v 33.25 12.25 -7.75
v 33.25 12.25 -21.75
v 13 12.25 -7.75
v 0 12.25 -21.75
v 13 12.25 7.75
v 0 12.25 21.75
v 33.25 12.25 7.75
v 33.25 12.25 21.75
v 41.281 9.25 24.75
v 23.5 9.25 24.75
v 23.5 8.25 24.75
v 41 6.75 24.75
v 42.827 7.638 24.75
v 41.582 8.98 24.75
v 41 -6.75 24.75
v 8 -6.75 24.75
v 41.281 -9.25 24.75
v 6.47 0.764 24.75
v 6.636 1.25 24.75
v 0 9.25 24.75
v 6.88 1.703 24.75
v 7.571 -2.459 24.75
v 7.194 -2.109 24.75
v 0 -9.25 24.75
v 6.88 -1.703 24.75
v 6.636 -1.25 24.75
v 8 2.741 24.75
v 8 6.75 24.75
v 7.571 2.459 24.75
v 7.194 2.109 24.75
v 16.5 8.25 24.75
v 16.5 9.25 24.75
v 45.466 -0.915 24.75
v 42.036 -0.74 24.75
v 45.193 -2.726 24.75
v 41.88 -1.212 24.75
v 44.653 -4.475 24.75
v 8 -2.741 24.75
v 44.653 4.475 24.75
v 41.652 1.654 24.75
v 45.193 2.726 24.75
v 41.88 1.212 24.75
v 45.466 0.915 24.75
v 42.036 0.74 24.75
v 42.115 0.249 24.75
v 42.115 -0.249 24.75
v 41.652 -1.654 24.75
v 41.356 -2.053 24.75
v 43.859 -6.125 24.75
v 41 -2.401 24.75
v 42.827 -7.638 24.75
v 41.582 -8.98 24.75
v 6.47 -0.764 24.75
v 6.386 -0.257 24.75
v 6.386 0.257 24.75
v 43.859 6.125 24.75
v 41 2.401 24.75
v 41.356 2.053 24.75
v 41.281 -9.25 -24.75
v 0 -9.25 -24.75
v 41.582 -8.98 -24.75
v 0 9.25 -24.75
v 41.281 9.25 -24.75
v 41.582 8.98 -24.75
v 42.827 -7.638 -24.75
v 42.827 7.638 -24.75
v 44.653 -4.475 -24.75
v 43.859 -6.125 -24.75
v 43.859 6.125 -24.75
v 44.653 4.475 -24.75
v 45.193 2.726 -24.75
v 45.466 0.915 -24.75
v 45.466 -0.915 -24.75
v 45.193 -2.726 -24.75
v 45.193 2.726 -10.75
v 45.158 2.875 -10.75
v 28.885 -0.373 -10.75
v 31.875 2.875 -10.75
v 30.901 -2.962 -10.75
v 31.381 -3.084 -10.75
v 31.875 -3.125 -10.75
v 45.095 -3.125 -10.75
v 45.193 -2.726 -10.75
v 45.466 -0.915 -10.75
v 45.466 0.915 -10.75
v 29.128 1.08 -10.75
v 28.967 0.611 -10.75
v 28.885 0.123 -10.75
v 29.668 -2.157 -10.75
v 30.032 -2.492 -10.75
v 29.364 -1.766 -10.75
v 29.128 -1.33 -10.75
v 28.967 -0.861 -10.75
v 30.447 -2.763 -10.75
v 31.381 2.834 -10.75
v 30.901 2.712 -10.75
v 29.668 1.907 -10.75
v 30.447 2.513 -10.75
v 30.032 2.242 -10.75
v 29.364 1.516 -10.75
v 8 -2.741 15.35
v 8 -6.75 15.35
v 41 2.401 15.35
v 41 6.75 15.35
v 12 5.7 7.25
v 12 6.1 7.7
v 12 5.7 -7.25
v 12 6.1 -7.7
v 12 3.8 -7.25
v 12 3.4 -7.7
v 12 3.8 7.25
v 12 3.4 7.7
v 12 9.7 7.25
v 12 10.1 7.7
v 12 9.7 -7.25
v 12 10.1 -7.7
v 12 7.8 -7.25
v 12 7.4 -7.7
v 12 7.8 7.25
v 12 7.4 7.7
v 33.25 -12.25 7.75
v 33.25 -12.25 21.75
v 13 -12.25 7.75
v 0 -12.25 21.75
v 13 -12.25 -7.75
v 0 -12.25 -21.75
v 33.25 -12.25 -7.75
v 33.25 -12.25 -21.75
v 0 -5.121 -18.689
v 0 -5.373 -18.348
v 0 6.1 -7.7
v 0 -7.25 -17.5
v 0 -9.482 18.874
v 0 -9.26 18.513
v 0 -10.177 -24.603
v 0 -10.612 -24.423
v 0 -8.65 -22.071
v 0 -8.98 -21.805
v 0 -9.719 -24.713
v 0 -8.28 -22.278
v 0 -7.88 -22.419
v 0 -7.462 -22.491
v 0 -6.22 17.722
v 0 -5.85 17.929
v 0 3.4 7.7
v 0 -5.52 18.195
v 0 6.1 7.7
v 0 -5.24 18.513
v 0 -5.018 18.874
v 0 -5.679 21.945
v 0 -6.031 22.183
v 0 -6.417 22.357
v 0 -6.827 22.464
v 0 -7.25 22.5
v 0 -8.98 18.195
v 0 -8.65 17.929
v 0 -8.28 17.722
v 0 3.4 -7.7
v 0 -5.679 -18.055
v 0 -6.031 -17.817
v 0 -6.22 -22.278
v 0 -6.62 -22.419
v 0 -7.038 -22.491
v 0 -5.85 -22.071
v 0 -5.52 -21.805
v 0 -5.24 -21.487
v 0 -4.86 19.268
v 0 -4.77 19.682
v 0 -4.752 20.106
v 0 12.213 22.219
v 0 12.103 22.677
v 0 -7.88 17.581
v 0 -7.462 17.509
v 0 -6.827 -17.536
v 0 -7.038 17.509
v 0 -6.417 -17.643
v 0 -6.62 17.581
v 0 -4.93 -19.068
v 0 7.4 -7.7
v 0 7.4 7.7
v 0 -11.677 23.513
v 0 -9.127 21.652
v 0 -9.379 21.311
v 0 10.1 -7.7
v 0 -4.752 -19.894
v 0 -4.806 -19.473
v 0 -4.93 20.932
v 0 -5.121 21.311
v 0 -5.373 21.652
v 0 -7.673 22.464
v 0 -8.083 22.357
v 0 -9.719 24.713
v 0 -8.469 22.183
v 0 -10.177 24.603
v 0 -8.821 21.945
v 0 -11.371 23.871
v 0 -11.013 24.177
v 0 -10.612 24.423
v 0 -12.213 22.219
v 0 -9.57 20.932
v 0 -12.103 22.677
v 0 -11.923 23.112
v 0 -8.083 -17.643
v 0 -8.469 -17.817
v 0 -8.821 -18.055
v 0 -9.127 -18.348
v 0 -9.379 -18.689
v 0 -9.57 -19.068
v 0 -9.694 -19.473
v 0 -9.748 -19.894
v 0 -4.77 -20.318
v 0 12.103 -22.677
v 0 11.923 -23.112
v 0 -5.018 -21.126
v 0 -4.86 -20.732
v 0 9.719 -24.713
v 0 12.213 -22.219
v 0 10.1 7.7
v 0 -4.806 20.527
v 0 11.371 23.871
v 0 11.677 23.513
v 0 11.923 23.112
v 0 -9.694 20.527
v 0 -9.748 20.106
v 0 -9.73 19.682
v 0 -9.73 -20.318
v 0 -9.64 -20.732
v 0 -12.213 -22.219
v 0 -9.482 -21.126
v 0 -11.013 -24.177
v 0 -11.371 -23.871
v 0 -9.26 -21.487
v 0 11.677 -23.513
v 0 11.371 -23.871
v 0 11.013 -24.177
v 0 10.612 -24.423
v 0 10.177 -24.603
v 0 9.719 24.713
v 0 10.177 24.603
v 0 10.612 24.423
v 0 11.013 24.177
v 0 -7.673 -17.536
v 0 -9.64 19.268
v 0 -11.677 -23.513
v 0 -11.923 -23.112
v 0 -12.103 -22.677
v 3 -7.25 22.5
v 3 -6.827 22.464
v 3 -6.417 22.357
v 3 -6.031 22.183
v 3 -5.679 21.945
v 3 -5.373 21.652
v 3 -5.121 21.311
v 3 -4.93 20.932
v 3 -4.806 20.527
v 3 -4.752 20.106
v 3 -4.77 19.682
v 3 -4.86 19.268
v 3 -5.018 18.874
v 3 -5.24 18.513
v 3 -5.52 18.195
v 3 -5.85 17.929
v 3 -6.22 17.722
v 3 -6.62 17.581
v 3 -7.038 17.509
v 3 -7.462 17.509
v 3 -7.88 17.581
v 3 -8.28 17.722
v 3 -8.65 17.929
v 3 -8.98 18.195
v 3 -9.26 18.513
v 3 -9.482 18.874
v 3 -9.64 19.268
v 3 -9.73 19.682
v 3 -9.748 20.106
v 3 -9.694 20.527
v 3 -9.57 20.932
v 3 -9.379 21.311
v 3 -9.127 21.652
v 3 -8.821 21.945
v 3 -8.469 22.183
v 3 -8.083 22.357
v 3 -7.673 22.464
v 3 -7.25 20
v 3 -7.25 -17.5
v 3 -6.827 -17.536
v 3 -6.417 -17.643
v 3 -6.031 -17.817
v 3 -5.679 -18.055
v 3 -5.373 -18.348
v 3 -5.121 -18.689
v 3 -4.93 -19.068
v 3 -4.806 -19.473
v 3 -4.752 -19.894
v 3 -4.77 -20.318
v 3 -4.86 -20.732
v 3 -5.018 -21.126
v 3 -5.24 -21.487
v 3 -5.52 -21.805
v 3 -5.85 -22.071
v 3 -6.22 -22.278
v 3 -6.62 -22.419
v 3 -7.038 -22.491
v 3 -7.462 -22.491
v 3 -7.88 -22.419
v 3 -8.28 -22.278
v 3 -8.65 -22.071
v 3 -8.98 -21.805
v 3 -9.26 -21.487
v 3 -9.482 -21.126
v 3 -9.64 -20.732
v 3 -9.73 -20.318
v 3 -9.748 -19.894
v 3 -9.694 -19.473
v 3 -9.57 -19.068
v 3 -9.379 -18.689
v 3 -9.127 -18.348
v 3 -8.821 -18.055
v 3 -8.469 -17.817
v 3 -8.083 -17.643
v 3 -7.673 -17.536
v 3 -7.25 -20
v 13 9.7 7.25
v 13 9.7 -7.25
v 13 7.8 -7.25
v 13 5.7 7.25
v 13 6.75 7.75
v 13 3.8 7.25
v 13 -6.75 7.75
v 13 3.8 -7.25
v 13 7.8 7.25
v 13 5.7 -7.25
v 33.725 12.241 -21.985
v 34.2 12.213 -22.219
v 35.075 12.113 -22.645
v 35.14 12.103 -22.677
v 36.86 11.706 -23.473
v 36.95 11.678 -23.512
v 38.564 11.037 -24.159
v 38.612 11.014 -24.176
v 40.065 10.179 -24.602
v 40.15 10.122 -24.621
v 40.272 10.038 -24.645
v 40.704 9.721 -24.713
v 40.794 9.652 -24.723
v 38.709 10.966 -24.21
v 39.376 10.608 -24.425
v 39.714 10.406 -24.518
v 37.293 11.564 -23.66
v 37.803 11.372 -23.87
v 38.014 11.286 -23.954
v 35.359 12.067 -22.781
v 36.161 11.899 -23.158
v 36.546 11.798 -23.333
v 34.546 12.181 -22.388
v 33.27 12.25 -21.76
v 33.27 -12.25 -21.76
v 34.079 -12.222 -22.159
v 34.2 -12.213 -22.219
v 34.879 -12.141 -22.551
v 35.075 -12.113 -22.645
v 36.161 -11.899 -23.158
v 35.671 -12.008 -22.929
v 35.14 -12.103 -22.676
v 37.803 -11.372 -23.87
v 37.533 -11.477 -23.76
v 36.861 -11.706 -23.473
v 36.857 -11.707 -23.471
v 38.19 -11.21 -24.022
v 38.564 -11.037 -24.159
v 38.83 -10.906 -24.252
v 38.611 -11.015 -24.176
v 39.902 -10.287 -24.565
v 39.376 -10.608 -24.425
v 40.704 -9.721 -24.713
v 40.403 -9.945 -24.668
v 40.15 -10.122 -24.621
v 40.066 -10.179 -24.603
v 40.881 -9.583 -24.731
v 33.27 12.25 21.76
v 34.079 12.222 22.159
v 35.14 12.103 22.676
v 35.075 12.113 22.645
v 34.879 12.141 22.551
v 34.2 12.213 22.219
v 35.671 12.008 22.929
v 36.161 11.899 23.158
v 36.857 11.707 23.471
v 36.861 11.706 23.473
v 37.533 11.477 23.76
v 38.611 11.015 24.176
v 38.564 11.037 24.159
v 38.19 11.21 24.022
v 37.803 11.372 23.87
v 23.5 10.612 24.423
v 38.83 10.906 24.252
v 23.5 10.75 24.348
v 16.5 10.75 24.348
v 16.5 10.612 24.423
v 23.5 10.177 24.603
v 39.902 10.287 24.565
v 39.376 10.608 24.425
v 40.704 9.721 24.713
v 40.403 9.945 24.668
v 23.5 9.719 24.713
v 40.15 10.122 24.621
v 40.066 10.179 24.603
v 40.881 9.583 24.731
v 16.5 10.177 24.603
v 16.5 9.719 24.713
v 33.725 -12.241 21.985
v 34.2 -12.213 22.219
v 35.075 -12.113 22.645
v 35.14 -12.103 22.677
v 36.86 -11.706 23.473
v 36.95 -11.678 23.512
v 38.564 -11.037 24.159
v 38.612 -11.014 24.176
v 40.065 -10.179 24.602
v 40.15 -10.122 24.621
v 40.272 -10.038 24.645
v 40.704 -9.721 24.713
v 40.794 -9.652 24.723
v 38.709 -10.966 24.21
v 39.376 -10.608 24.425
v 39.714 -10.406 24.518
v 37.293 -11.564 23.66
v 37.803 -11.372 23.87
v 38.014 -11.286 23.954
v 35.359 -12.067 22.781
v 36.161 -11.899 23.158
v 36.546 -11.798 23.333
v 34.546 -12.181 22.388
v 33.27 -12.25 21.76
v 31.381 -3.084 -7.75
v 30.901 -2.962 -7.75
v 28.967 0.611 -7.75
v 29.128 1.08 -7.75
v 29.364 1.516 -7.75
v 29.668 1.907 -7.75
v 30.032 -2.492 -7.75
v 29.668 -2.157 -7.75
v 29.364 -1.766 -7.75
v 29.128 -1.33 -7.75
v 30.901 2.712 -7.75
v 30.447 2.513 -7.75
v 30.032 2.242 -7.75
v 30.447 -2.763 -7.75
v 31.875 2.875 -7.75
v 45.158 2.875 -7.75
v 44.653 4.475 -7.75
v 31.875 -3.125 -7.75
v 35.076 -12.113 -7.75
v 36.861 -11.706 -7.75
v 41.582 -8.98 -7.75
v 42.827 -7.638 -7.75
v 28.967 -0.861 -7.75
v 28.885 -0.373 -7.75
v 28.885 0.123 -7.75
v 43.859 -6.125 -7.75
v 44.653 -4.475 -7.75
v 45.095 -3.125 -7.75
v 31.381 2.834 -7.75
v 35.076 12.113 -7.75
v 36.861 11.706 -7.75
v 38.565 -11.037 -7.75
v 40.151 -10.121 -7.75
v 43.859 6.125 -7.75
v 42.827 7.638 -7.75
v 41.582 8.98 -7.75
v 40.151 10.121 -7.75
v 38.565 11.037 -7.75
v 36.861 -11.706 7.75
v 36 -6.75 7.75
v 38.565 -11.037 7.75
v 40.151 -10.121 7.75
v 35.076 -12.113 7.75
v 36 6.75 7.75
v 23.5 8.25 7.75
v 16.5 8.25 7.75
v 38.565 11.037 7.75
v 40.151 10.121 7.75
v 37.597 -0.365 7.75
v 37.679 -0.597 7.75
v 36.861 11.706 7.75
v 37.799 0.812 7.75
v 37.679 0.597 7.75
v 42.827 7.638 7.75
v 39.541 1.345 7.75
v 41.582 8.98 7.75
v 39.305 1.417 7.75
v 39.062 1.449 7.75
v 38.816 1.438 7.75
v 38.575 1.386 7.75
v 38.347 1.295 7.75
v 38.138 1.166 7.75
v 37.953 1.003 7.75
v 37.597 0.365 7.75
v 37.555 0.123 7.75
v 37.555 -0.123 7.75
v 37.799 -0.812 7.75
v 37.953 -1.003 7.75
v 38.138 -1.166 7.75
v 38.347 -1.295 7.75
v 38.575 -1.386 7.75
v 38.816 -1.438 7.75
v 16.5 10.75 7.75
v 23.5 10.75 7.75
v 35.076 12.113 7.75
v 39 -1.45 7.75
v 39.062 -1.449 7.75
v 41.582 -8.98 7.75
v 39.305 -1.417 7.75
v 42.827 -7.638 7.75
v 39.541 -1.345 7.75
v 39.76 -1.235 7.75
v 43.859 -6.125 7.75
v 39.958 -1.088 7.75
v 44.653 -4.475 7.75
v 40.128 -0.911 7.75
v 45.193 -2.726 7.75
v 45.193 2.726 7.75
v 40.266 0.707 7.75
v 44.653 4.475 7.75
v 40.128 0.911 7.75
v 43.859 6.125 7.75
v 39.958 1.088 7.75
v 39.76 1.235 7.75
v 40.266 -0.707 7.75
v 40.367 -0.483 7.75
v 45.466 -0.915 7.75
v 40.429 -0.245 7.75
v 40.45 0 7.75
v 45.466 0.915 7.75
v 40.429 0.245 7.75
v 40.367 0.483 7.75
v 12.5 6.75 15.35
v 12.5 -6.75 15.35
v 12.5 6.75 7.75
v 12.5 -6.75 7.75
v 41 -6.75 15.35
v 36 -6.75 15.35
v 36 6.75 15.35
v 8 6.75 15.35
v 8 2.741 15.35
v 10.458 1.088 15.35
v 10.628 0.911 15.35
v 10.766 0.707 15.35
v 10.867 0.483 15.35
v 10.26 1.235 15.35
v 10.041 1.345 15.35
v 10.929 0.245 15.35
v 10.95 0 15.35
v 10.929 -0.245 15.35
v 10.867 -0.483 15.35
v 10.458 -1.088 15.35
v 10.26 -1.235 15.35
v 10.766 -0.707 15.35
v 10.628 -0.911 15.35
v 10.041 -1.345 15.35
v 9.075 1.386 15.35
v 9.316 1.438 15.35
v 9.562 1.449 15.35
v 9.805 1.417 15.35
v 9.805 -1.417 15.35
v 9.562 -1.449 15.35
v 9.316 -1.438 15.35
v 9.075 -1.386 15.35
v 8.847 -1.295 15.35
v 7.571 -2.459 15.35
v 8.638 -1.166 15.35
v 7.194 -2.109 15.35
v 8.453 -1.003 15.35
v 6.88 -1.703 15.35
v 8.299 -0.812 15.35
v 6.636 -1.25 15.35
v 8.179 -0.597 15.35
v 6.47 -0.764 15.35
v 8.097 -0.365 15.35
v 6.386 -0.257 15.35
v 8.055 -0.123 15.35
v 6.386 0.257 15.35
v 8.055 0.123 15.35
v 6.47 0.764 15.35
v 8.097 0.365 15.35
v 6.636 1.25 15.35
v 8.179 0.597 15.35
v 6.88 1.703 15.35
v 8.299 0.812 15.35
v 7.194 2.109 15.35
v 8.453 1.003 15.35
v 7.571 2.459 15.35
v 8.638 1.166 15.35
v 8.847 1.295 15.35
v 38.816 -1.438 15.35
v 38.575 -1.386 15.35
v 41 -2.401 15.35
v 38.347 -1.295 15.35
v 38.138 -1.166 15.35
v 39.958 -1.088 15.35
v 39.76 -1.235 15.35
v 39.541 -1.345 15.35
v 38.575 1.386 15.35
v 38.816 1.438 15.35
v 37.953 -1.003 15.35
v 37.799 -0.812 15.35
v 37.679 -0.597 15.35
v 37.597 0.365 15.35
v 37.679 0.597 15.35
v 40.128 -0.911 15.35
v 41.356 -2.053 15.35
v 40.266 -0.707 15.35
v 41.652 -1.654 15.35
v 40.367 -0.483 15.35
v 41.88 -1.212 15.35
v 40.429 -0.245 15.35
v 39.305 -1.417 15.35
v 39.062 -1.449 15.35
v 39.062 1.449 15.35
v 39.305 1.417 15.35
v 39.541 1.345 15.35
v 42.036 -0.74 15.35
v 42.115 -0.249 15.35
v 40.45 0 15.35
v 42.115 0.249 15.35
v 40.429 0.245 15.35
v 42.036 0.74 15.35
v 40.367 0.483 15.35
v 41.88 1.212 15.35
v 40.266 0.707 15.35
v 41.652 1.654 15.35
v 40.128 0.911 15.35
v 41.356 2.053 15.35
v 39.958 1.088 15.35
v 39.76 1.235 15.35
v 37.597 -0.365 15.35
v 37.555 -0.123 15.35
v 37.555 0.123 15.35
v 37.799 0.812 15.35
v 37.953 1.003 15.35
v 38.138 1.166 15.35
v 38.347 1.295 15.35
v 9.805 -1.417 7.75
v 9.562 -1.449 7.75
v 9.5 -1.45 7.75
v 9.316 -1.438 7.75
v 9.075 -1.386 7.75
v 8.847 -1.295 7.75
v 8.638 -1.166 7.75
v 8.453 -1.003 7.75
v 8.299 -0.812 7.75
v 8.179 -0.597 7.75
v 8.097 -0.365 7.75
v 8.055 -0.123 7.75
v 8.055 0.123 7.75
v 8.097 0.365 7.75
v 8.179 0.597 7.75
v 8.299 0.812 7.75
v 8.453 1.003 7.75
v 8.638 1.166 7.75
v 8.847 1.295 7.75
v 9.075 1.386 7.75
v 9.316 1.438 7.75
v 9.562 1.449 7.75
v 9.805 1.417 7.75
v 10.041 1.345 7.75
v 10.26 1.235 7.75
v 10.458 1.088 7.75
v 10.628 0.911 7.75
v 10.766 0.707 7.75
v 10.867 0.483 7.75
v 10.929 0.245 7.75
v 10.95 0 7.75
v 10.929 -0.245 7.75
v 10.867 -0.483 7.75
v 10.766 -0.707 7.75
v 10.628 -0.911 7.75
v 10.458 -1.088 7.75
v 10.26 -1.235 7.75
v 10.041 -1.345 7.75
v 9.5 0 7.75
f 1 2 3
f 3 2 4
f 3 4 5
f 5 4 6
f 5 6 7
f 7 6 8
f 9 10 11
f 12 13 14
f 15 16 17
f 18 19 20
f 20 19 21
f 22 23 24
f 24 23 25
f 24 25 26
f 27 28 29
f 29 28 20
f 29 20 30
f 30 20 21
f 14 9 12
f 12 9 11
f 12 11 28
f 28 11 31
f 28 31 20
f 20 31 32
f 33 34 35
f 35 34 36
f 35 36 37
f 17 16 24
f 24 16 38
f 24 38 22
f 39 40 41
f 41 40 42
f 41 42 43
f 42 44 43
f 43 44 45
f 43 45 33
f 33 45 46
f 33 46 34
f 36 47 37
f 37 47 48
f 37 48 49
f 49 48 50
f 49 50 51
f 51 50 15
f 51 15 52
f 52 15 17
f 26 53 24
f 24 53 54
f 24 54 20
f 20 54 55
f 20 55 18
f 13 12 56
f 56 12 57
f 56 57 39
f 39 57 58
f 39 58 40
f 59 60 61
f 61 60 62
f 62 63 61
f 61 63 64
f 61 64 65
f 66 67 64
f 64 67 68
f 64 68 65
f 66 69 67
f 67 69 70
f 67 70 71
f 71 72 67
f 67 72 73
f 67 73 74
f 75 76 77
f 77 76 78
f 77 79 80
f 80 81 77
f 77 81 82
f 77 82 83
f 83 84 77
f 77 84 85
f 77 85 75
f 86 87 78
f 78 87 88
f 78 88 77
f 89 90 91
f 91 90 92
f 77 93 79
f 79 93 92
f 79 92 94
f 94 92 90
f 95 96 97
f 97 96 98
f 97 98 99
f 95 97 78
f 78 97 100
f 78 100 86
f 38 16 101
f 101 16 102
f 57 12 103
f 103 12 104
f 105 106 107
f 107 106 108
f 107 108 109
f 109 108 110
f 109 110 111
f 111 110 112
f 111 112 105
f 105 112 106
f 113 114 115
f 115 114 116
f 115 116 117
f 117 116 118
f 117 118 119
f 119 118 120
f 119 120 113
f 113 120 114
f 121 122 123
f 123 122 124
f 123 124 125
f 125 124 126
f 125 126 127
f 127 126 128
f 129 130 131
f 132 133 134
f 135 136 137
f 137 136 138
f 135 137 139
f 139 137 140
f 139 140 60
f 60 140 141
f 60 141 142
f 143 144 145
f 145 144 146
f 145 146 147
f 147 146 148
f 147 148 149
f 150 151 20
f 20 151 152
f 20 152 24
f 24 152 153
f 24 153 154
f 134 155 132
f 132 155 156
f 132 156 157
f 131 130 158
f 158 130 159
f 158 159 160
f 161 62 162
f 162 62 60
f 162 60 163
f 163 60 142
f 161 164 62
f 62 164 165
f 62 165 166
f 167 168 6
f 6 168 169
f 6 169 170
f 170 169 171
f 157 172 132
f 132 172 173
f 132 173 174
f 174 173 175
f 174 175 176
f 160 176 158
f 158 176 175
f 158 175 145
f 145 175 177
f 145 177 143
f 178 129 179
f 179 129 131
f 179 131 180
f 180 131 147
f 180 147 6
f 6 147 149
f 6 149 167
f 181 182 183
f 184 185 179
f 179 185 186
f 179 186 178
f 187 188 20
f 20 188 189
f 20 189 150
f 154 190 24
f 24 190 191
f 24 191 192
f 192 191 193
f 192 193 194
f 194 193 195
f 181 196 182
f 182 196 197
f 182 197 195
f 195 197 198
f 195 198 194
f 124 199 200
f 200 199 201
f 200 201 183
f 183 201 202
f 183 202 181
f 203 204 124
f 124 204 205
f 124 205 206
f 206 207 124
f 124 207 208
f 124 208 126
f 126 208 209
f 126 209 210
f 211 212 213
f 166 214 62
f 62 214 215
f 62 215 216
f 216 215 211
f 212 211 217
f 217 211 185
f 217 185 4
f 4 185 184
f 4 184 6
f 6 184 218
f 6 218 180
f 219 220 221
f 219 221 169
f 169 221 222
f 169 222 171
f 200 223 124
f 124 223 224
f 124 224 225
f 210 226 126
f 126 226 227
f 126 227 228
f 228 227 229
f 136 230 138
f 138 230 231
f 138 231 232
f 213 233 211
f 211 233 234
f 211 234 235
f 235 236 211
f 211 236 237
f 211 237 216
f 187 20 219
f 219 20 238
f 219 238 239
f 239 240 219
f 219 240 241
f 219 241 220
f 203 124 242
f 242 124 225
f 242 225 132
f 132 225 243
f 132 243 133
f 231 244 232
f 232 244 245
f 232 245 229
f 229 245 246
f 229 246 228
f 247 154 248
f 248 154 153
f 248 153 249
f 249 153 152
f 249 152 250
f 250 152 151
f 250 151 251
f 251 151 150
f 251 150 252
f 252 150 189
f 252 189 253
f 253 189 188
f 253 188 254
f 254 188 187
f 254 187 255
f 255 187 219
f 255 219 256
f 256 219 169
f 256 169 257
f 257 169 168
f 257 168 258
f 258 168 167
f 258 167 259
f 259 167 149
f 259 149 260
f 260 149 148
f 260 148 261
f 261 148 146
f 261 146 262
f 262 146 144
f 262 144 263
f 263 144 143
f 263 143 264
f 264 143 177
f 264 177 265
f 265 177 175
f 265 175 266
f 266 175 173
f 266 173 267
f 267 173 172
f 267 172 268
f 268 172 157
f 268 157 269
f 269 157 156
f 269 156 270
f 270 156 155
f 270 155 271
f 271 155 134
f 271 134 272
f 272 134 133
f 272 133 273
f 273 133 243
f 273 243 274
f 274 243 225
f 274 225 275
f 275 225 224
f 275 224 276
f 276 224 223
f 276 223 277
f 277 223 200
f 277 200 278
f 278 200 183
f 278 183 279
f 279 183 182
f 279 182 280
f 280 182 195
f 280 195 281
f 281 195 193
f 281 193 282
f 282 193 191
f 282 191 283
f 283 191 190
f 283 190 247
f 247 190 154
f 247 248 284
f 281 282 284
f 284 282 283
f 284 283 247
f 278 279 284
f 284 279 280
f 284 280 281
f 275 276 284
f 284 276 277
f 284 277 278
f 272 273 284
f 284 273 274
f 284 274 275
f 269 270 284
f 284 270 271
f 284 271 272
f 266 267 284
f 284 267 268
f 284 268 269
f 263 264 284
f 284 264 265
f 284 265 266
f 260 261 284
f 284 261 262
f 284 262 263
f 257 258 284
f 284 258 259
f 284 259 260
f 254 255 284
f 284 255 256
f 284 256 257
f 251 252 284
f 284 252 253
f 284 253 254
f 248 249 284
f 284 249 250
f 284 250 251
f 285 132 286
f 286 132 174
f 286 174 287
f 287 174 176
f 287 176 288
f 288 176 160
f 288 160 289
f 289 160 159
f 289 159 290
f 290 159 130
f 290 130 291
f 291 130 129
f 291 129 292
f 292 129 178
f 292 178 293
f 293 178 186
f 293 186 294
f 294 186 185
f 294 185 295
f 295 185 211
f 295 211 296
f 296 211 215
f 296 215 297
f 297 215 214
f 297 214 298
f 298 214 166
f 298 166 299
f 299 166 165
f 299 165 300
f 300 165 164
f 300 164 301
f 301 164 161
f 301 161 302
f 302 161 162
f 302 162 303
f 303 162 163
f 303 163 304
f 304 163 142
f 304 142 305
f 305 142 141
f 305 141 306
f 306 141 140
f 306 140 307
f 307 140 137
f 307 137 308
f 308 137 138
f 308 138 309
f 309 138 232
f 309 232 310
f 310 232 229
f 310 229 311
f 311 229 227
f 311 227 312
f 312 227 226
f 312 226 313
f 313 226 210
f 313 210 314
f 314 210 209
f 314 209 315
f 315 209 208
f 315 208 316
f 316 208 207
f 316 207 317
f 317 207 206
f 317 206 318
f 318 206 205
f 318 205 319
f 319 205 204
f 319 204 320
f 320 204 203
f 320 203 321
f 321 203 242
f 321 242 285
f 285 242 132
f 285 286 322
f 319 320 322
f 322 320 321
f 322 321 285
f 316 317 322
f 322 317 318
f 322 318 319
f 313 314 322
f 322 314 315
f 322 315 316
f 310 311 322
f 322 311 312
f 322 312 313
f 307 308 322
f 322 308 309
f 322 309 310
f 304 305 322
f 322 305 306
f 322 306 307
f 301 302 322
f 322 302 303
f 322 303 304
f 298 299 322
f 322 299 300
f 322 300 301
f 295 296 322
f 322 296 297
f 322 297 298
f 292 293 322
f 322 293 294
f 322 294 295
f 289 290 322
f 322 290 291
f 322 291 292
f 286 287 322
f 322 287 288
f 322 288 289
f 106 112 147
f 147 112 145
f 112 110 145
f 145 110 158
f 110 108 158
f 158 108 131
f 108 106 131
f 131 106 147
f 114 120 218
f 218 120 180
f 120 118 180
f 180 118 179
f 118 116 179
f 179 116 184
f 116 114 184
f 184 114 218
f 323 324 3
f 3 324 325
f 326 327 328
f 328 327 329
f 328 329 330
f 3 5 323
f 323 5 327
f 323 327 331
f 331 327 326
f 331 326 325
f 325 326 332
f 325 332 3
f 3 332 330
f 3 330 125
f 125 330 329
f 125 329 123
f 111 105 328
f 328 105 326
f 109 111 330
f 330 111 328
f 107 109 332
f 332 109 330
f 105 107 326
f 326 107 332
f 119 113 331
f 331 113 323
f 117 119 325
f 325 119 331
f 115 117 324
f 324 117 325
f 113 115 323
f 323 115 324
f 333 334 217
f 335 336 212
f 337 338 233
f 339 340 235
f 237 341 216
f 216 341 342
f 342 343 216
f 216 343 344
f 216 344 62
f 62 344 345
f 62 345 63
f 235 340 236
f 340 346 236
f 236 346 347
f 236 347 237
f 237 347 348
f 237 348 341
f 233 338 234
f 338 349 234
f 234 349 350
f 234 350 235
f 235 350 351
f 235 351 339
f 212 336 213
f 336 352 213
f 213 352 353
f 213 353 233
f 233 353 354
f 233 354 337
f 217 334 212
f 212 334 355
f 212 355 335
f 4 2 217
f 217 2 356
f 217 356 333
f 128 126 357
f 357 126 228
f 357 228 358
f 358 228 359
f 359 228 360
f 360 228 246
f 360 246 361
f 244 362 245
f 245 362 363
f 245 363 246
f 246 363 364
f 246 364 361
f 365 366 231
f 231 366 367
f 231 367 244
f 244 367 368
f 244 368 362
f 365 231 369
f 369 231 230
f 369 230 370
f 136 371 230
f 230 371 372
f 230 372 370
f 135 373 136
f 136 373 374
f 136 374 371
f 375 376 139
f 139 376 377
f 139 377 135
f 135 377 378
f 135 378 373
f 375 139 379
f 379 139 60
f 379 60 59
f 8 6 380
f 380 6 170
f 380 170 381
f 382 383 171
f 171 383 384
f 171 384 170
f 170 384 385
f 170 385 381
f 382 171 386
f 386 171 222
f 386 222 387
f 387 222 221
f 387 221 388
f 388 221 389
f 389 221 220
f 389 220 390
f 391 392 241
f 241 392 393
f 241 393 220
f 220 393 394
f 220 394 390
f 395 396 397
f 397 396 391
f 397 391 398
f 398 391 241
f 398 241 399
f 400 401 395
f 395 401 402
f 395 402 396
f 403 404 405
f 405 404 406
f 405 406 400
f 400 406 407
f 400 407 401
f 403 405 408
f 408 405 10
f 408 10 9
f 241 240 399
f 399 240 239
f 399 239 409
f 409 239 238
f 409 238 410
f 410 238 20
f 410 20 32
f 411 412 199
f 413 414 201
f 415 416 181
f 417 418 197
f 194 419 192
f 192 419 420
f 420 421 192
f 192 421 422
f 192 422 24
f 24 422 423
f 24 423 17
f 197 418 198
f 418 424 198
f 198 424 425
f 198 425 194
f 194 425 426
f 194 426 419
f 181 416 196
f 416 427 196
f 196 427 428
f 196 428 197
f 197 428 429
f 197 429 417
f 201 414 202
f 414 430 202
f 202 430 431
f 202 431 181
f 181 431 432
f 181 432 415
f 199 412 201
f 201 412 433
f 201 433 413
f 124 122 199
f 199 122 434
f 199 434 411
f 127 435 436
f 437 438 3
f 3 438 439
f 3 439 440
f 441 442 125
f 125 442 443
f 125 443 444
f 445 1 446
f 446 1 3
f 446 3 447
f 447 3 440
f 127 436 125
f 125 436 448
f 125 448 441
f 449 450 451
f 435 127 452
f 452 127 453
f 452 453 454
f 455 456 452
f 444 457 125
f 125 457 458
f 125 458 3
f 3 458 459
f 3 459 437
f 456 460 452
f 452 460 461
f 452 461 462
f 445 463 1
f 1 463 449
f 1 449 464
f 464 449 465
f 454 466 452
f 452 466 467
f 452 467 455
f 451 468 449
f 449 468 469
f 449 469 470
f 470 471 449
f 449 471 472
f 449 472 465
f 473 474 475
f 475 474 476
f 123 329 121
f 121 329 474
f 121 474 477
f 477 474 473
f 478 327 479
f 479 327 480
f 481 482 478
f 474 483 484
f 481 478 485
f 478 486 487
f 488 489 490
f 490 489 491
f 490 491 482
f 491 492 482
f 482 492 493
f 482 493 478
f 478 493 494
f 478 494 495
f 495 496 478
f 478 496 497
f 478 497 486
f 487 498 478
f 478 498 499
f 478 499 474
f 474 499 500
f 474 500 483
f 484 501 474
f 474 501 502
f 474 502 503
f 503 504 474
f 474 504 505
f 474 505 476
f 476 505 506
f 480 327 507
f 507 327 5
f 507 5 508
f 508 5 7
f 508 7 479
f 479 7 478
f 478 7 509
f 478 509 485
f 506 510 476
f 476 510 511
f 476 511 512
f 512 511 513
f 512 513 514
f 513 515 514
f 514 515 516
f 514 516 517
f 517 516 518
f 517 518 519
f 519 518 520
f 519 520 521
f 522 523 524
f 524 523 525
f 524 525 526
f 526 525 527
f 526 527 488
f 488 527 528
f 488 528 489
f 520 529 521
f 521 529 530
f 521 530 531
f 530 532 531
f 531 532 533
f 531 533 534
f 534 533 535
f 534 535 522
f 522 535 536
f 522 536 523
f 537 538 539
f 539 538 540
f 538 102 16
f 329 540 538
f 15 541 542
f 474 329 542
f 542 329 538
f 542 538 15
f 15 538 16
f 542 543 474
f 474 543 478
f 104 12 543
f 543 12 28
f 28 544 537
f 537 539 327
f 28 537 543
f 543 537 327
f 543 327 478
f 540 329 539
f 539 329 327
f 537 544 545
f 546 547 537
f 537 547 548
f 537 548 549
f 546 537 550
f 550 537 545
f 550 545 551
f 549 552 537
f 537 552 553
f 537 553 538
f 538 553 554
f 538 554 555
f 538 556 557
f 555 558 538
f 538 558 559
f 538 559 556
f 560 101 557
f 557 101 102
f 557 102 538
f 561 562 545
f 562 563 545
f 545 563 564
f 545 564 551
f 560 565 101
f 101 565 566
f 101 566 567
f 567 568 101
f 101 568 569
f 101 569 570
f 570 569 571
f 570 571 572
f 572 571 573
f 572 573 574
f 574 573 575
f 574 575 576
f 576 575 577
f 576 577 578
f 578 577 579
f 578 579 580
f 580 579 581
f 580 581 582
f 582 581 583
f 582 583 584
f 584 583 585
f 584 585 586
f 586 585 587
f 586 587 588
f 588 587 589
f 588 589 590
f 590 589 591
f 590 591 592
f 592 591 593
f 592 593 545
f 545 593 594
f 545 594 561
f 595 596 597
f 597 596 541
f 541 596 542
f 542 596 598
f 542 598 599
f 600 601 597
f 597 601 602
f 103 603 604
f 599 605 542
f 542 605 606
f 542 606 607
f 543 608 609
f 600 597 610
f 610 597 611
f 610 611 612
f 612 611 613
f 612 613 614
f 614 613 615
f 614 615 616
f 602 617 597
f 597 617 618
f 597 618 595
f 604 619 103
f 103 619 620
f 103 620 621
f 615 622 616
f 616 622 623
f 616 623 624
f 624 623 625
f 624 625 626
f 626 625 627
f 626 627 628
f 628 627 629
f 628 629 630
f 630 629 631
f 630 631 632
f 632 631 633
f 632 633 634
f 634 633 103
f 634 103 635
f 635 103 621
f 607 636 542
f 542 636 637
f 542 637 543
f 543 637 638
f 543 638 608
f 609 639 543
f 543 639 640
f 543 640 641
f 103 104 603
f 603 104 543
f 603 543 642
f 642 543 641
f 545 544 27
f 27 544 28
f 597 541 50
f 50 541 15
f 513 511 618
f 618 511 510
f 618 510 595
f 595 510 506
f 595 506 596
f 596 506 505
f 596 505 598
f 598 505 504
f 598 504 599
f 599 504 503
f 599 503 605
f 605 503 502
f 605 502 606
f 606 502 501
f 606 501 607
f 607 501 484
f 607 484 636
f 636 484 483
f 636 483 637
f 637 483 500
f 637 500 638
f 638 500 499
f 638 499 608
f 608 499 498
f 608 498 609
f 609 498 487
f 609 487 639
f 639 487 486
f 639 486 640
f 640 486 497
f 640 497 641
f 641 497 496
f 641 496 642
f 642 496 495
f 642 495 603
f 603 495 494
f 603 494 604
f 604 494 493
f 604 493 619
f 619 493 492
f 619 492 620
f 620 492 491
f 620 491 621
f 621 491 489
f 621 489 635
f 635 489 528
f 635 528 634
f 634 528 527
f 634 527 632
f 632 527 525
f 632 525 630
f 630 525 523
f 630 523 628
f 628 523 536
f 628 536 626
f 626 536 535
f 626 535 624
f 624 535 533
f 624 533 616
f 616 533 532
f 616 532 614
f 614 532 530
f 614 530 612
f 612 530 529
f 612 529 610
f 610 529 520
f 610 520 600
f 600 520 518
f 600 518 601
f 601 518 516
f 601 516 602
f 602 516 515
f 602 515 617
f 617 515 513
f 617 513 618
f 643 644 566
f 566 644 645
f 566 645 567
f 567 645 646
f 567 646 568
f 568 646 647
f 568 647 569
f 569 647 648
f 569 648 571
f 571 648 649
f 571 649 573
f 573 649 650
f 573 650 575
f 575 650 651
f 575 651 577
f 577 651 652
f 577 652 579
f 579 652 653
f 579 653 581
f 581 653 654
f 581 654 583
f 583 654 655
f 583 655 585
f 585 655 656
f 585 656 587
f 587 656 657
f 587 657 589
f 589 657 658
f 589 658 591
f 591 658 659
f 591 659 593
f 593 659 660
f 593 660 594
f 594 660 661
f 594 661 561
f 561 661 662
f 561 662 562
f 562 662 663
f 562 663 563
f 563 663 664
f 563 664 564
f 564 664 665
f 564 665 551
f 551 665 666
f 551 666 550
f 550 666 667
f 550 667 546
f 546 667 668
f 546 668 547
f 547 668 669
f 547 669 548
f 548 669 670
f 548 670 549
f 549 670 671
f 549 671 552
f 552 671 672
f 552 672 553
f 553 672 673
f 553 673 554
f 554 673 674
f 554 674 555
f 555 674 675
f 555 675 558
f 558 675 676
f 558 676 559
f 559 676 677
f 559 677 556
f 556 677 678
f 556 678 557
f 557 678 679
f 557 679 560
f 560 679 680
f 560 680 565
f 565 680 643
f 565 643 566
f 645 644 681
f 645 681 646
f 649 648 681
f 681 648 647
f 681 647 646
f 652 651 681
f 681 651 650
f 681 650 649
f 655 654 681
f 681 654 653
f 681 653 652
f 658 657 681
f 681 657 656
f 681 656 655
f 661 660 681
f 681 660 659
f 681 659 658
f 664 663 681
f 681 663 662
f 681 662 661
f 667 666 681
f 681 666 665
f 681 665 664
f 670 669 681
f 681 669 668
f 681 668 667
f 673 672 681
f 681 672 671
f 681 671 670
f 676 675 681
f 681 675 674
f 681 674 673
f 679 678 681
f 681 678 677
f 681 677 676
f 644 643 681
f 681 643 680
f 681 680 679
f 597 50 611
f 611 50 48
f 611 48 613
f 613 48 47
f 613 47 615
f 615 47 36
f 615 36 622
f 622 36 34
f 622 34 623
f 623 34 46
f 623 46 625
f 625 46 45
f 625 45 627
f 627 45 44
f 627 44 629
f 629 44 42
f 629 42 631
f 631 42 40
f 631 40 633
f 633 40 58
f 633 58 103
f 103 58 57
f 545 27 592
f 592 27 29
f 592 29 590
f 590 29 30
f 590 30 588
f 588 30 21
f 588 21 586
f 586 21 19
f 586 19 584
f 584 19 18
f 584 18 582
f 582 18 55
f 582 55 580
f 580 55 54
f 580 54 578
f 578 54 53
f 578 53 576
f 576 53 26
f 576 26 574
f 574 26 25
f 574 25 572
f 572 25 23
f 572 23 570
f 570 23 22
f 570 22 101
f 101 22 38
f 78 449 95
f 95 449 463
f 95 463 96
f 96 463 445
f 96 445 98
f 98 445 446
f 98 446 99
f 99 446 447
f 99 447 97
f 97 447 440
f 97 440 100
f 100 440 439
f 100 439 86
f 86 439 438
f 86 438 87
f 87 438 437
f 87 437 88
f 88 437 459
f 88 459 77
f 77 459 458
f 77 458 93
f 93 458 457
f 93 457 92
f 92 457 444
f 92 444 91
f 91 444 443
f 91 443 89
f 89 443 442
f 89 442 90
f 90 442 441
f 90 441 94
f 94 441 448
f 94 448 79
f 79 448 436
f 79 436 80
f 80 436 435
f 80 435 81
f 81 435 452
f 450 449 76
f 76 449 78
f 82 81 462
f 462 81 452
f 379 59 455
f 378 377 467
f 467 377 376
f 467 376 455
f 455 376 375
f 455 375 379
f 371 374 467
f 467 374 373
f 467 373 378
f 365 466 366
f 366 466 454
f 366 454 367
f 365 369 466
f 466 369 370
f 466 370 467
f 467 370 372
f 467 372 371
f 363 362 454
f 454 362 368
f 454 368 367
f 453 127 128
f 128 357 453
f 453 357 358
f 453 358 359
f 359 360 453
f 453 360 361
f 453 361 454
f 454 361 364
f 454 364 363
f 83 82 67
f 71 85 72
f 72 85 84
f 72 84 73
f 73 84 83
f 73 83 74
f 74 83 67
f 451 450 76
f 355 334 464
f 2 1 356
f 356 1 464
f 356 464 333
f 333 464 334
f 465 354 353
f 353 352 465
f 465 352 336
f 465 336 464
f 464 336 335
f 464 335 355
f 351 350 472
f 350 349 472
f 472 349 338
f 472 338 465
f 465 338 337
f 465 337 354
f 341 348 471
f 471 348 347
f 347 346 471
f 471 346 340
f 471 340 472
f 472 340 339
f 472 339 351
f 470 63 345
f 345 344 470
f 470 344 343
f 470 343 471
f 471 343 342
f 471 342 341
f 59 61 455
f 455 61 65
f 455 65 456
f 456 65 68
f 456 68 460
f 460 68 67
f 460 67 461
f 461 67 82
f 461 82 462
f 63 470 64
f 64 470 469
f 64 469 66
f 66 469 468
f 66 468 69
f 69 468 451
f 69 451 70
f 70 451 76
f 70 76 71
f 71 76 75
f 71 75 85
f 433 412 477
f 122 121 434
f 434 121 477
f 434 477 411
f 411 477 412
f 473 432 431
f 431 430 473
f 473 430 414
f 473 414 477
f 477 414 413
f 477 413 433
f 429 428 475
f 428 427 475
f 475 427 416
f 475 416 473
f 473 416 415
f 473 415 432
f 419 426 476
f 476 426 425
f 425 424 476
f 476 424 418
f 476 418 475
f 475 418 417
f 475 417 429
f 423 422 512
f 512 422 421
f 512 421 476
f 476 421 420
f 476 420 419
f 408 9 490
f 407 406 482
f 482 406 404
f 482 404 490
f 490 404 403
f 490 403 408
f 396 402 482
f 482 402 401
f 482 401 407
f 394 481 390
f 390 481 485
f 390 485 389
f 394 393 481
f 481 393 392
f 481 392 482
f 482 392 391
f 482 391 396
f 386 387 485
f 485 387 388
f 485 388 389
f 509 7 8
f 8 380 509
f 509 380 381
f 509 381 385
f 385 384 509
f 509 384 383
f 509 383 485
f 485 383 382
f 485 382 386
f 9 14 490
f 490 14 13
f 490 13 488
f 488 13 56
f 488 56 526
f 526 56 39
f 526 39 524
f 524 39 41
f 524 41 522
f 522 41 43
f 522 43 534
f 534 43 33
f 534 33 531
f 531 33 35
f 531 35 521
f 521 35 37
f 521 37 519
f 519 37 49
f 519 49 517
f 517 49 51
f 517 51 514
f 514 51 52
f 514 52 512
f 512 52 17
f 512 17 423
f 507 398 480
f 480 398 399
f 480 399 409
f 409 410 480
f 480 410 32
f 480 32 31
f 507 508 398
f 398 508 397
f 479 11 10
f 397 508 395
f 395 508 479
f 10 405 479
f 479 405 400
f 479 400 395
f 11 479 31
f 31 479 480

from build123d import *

# Parameters (mm, degrees)
SKETCH_1_W           = 49.5
SKETCH_1_H           = 24.5
EXTRUDE_1_DEPTH      = 36
SKETCH_2_R           = 2.5
CUT_EXTRUDE_1_DEPTH  = 3
SKETCH_3_W           = 15.4
SKETCH_3_H           = 2.7
CUT_EXTRUDE_2_DEPTH  = 12
SKETCH_9_W           = 23
SKETCH_9_H           = 49.5
CUT_EXTRUDE_9_DEPTH  = 24.5
SKETCH_11_W          = 14.5
SKETCH_11_H          = 1.9
CUT_EXTRUDE_8_DEPTH  = 2
FILLET_1_R           = 3
EXTRUDE_START        = 32.5
EXTRUDE_2_DEPTH      = 32.5
SKETCH_13_W          = 23.5
SKETCH_13_H          = 13.5
CUT_EXTRUDE_10_DEPTH = 7.6
SKETCH_14_W          = 33
SKETCH_14_H          = 13.5
CUT_EXTRUDE_11_DEPTH = 9.4
SKETCH_16_R          = 1.45
CUT_EXTRUDE_12_DEPTH = 17
SKETCH_17_R          = 3.125
CUT_EXTRUDE_13_DEPTH = 9.4
CUT_EXTRUDE_14_DEPTH = 3
CUT_EXTRUDE_START    = -49.5
CUT_EXTRUDE_15_DEPTH = 49.5
SKETCH_20_W          = 7
SKETCH_20_H          = 2.5
CUT_EXTRUDE_16_DEPTH = 19


with BuildPart() as part:
    # Эскиз1 → Бобышка-Вытянуть1 (new body)
    with BuildSketch(Plane(origin=(0, 0, 0), x_dir=(0, 0, -1), z_dir=(1, 0, 0))):
        Rectangle(SKETCH_1_W, SKETCH_1_H)
    extrude(amount=EXTRUDE_1_DEPTH)

    # Эскиз2 → Вырез-Вытянуть1 (cut)
    with BuildSketch(Plane.ZY):
        with Locations((-20, -7.25)):
            Circle(SKETCH_2_R)
        with Locations((20, -7.25)):
            Circle(SKETCH_2_R)
    extrude(amount=-CUT_EXTRUDE_1_DEPTH, mode=Mode.SUBTRACT)

    # Эскиз3 → Вырез-Вытянуть2 (cut)
    with BuildSketch(Plane.ZY):
        with Locations((0, 4.75)):
            Rectangle(SKETCH_3_W, SKETCH_3_H)
        with Locations((0, 8.75)):
            Rectangle(SKETCH_3_W, SKETCH_3_H)
    extrude(amount=-CUT_EXTRUDE_2_DEPTH, mode=Mode.SUBTRACT)

    # Эскиз9 → Вырез-Вытянуть9 (cut)
    with BuildSketch(Plane.XZ.offset(-12.25)):
        with Locations((24.5, 0)):
            Rectangle(SKETCH_9_W, SKETCH_9_H)
    extrude(amount=CUT_EXTRUDE_9_DEPTH, mode=Mode.SUBTRACT)

    # Эскиз11 → Вырез-Вытянуть8 (cut)
    with BuildSketch(Plane.ZY.offset(-12)):
        with Locations((0, 8.75)):
            Rectangle(SKETCH_11_W, SKETCH_11_H)
        with Locations((0, 4.75)):
            Rectangle(SKETCH_11_W, SKETCH_11_H)
    extrude(amount=-CUT_EXTRUDE_8_DEPTH, mode=Mode.SUBTRACT)

    # Скругление1
    fillet_1_edges = [part.edges().sort_by_distance(p)[0] for p in [
        (6.5, 12.25, -24.75),
        (6.5, -12.25, -24.75),
        (6.5, -12.25, 24.75),
        (6.5, 12.25, 24.75),
    ]]
    fillet(fillet_1_edges, radius=FILLET_1_R)

    # Эскиз12 → Бобышка-Вытянуть2 (add)
    with BuildSketch(Plane(origin=(13, 0, 0), x_dir=(0, 0, -1), z_dir=(1, 0, 0)).offset(EXTRUDE_START)):
        with BuildLine():
            Line((-7.75, 12.25), (-7.75, -12.25))
            Line((-7.75, -12.25), (-21.75, -12.25))
            ThreePointArc((-21.75, -12.25), (-23.871320344, -11.371320344), (-24.75, -9.25))
            Line((-24.75, -9.25), (-24.75, 9.25))
            ThreePointArc((-24.75, 9.25), (-23.871320344, 11.371320344), (-21.75, 12.25))
            Line((-21.75, 12.25), (-7.75, 12.25))
        make_face()
        with BuildLine():
            Line((21.75, 12.25), (7.75, 12.25))
            Line((7.75, 12.25), (7.75, -12.25))
            Line((7.75, -12.25), (21.75, -12.25))
            ThreePointArc((21.75, -12.25), (23.871320344, -11.371320344), (24.75, -9.25))
            Line((24.75, -9.25), (24.75, 9.25))
            ThreePointArc((24.75, 9.25), (23.871320344, 11.371320344), (21.75, 12.25))
        make_face()
    extrude(amount=-EXTRUDE_2_DEPTH)

    # Эскиз13 → Вырез-Вытянуть10 (cut)
    with BuildSketch(Plane(origin=(0, 0, 7.75), x_dir=(-1, 0, 0), z_dir=(0, 0, -1))):
        with Locations((-24.25, 0)):
            Rectangle(SKETCH_13_W, SKETCH_13_H)
    extrude(amount=-CUT_EXTRUDE_10_DEPTH, mode=Mode.SUBTRACT)

    # Эскиз14 → Вырез-Вытянуть11 (cut)
    with BuildSketch(Plane(origin=(0, 0, 15.35), x_dir=(-1, 0, 0), z_dir=(0, 0, -1))):
        with Locations((-24.5, 0)):
            Rectangle(SKETCH_14_W, SKETCH_14_H)
    extrude(amount=-CUT_EXTRUDE_11_DEPTH, mode=Mode.SUBTRACT)

    # Эскиз16 → Вырез-Вытянуть12 (cut)
    with BuildSketch(Plane.XY.offset(24.75)):
        with Locations((9.5, 0)):
            Circle(SKETCH_16_R)
        with Locations((39, 0)):
            Circle(SKETCH_16_R)
    extrude(amount=-CUT_EXTRUDE_12_DEPTH, mode=Mode.SUBTRACT)

    # Эскиз17 → Вырез-Вытянуть13 (cut)
    with BuildSketch(Plane.XY.offset(24.75)):
        with Locations((9.5, 0)):
            Circle(SKETCH_17_R)
        with Locations((39, 0)):
            Circle(SKETCH_17_R)
    extrude(amount=-CUT_EXTRUDE_13_DEPTH, mode=Mode.SUBTRACT)

    # Эскиз18 → Вырез-Вытянуть14 (cut)
    with BuildSketch(Plane.XY.offset(-7.75)):
        with BuildLine():
            Line((31.875, 2.875), (45.5, 2.875))
            Line((45.5, 2.875), (45.5, -3.125))
            Line((45.5, -3.125), (31.875, -3.125))
            ThreePointArc((31.875, -3.125), (28.875, -0.125), (31.875, 2.875))
        make_face()
    extrude(amount=-CUT_EXTRUDE_14_DEPTH, mode=Mode.SUBTRACT)

    # Эскиз19 → Вырез-Вытянуть15 (cut)
    with BuildSketch(Plane(origin=(0, 0, -24.75), x_dir=(-1, 0, 0), z_dir=(0, 0, -1)).offset(CUT_EXTRUDE_START)):
        with BuildLine():
            Line((-33.25, 12.25), (-46.5, 12.25))
            Line((-46.5, 12.25), (-46.5, -12.25))
            Line((-46.5, -12.25), (-33.25, -12.25))
            ThreePointArc((-33.25, -12.25), (-45.5, 0), (-33.25, 12.25))
        make_face()
    extrude(amount=CUT_EXTRUDE_15_DEPTH, mode=Mode.SUBTRACT)

    # Эскиз20 → Вырез-Вытянуть16 (cut)
    with BuildSketch(Plane.XY.offset(24.75)):
        with Locations((20, 9.5)):
            Rectangle(SKETCH_20_W, SKETCH_20_H)
    extrude(amount=-CUT_EXTRUDE_16_DEPTH, mode=Mode.SUBTRACT)


solid = part.part
